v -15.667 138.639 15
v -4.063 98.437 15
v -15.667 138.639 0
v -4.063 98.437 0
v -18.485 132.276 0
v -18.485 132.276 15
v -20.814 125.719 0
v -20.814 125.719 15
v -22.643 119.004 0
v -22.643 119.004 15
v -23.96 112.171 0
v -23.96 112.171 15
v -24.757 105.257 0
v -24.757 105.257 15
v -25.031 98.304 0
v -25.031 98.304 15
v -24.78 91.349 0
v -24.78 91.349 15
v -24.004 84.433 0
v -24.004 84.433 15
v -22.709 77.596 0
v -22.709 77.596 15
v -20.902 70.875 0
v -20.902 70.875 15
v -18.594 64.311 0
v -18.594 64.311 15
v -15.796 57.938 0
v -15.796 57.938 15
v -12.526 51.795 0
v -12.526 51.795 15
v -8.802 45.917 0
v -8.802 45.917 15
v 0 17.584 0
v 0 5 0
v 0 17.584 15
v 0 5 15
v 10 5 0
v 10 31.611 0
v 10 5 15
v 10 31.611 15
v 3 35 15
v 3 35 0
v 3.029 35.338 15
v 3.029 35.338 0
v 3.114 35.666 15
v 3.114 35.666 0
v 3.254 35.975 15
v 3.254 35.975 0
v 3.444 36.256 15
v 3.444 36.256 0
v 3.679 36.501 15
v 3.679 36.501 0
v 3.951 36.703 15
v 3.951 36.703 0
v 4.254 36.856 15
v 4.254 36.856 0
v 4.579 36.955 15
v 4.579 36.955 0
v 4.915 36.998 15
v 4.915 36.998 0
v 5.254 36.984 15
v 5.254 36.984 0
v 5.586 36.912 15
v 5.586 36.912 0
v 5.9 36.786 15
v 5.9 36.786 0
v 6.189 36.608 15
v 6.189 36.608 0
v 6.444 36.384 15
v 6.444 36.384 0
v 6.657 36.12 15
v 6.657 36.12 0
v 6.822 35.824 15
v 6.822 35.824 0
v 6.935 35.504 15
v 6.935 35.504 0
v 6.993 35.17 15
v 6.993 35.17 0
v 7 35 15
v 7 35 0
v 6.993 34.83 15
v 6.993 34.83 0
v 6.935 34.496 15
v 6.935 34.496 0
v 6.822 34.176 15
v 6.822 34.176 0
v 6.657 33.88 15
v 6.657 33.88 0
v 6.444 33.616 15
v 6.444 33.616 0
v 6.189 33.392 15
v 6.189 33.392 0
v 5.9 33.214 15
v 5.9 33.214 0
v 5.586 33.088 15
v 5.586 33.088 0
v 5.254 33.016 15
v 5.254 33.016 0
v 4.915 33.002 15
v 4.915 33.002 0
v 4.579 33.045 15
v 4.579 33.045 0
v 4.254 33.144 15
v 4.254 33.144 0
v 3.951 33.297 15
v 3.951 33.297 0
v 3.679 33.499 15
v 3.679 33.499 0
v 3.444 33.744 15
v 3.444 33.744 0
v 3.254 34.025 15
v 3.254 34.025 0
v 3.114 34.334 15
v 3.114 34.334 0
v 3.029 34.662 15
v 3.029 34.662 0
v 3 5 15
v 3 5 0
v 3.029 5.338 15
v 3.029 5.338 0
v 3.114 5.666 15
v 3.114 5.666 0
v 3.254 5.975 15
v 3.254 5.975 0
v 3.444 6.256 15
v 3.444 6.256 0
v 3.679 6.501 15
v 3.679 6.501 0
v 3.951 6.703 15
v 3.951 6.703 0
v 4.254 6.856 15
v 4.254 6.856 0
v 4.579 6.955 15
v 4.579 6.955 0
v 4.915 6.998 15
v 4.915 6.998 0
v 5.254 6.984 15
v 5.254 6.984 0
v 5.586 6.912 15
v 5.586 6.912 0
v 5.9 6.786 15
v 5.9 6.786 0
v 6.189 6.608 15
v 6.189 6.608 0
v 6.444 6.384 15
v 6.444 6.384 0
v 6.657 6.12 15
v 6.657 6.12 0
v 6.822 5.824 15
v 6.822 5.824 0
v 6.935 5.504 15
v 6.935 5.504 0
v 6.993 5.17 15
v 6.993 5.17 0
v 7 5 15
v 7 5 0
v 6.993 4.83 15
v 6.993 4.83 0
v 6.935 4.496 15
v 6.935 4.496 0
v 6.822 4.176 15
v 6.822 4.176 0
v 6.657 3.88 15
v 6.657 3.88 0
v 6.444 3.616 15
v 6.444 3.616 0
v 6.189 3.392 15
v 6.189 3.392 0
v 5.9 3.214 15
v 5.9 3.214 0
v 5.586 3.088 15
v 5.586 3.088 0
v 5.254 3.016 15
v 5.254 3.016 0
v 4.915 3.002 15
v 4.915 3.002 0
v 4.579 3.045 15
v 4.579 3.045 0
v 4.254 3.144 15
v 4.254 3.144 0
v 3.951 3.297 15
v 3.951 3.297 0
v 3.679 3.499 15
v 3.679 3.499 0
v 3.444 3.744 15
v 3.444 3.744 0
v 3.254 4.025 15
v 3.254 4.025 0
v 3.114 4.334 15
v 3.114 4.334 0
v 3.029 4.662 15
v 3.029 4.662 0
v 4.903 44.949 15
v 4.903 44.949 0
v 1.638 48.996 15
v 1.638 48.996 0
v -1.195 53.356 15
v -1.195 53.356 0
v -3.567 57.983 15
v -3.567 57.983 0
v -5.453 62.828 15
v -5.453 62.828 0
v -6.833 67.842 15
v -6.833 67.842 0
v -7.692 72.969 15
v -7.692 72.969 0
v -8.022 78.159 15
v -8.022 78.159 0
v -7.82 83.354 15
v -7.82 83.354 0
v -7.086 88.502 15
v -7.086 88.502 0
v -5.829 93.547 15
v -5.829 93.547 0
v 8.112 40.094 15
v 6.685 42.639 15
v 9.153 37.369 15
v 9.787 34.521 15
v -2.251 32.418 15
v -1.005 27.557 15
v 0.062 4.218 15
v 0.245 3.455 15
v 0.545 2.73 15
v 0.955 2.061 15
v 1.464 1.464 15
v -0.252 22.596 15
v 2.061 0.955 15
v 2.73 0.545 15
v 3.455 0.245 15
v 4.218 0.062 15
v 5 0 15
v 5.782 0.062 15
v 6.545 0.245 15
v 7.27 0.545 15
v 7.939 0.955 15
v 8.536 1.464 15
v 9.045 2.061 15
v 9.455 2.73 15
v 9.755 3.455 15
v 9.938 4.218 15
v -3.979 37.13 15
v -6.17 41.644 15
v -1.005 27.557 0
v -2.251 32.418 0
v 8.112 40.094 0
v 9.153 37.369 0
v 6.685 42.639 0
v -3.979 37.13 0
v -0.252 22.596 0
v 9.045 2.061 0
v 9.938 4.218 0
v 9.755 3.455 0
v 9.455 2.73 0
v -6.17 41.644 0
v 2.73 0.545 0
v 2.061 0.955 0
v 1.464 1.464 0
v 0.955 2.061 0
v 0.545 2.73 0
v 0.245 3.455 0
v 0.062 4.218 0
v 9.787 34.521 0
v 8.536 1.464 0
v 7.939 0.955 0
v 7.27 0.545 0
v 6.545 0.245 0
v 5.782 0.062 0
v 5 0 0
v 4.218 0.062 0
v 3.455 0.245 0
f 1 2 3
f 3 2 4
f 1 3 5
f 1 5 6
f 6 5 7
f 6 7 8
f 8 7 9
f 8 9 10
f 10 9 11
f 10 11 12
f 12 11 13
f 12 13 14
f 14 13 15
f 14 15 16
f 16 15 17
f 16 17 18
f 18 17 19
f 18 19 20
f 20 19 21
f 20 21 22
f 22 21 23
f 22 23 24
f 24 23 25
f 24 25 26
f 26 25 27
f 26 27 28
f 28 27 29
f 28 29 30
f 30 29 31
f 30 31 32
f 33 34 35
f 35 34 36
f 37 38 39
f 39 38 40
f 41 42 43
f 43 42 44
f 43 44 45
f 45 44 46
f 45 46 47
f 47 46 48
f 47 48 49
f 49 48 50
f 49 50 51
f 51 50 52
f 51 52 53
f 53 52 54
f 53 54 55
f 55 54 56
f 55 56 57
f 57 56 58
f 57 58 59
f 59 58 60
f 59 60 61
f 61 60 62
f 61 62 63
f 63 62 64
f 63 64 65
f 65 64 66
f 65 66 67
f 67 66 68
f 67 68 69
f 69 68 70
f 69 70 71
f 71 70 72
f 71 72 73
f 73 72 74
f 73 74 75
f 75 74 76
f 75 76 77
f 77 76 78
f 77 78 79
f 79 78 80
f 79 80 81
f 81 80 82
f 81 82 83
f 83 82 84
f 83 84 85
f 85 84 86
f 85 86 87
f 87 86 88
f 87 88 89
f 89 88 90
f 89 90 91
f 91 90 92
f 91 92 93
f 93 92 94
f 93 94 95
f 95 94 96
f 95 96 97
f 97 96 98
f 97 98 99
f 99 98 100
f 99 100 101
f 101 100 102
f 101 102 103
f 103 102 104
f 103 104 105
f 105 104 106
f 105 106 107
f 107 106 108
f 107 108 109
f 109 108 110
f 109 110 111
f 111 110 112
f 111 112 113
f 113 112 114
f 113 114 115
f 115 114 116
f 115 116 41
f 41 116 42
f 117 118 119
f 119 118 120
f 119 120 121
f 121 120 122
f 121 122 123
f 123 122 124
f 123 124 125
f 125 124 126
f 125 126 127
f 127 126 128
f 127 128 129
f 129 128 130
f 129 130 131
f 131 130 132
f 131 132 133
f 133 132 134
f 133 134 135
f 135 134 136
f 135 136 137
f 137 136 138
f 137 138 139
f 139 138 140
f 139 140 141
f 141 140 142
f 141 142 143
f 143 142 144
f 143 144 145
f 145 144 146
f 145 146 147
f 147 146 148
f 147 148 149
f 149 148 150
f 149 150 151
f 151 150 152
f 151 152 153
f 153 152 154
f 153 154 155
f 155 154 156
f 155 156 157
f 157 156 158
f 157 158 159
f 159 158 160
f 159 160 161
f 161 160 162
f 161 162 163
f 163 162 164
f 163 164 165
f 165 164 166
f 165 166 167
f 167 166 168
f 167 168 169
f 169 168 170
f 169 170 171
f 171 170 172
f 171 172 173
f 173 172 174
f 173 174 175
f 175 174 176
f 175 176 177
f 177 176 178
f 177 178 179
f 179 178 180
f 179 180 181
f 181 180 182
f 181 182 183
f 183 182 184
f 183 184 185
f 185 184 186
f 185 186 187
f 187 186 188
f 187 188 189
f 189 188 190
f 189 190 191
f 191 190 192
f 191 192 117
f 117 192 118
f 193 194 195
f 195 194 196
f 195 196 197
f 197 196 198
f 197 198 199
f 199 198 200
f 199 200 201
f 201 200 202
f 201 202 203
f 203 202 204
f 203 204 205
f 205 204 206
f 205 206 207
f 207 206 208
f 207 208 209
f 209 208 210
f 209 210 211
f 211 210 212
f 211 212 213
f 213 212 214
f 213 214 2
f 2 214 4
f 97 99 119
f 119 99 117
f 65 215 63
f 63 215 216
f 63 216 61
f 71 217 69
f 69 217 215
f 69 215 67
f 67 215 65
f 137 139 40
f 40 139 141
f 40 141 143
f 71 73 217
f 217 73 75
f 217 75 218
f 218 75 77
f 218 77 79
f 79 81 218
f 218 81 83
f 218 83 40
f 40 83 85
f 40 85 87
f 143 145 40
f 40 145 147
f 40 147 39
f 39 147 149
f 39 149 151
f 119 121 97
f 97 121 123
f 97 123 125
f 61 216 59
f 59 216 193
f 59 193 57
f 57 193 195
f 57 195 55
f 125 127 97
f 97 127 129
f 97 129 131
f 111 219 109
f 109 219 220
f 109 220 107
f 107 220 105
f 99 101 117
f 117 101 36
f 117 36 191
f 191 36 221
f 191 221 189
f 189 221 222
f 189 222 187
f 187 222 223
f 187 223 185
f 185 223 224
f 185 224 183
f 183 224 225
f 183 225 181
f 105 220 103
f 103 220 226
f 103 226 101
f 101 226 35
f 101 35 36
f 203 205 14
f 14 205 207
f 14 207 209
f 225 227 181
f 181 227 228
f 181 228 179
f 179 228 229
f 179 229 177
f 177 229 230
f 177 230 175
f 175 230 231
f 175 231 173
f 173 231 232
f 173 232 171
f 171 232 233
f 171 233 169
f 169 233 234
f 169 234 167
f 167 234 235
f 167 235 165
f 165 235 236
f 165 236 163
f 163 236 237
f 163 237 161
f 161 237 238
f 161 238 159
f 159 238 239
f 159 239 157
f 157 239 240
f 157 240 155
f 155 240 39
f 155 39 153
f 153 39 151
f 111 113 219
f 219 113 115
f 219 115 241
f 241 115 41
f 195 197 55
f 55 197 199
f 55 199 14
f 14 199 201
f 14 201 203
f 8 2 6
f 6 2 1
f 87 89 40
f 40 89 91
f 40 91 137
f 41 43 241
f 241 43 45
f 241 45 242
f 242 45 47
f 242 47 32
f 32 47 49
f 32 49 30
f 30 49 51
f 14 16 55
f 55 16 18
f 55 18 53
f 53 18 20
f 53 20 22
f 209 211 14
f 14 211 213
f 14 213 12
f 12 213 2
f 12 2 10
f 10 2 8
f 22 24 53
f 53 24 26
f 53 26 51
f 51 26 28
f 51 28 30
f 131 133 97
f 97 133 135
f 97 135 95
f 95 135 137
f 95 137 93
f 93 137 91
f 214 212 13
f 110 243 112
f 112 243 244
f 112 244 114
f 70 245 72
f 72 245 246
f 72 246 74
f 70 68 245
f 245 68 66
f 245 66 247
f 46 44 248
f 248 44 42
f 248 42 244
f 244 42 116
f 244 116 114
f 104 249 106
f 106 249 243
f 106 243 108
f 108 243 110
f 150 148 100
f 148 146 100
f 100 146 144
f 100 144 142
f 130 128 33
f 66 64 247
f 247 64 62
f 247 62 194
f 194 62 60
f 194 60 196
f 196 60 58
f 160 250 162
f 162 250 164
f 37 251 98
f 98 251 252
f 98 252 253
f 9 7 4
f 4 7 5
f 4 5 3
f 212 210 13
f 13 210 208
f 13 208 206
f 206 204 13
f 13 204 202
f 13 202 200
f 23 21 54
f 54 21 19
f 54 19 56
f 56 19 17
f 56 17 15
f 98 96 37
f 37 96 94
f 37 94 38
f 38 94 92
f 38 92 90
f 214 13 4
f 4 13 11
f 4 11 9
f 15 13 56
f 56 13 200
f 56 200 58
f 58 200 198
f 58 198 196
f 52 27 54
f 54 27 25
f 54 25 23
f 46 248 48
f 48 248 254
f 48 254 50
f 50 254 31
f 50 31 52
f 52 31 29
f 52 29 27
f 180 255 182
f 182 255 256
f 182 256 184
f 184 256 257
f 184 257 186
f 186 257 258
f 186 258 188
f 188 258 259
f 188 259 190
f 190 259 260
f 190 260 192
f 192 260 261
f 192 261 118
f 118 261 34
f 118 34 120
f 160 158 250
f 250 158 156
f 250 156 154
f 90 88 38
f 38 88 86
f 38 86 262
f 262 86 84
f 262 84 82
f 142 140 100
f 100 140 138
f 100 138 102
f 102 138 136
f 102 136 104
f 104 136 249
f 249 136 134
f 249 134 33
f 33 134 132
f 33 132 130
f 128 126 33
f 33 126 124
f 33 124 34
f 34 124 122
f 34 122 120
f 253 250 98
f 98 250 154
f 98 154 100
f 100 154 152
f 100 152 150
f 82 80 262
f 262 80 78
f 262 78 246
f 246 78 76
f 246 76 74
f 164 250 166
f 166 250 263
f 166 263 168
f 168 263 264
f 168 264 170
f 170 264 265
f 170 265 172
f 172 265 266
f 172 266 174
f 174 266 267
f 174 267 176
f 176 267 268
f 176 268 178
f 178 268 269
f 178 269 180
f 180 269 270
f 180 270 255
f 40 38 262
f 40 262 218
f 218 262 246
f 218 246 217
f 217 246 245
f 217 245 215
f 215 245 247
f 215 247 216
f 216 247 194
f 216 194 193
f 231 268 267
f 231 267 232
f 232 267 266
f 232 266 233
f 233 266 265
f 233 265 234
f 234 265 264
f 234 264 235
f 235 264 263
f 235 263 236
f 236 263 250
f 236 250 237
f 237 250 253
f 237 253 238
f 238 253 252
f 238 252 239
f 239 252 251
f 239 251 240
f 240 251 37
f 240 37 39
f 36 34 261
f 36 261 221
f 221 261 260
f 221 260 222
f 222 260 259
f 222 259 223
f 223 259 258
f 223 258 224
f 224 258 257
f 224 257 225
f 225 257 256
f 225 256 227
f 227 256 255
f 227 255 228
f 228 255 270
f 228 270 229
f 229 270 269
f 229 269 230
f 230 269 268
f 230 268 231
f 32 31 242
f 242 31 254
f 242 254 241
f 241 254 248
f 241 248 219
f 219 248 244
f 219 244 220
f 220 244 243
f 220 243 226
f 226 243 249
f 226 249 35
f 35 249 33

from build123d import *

# Parameters (mm, degrees)
BOSS_EXTRUDE1_DEPTH = 15
FILLET1_R           = 20
FILLET2_R           = 5
FILLET3_R           = 50


with BuildPart() as part:
    # Sketch1 → Boss-Extrude1 (new body)
    # profile 1 of 2: a face of its own
    with BuildSketch(Plane.XY):
        with BuildLine():
            Line((0, 0), (5, 0))
            Line((5, 0), (10, 0))
            Line((10, 0), (10, 40))
            ThreePointArc((10, 40), (-6.618184888, 66.911601725), (-4.062833515, 98.437282617))
            Line((-4.062833515, 98.437282617), (-12.996544728, 129.388331338))
            Line((-12.996544728, 129.388331338), (-15.666737168, 138.639274683))
            ThreePointArc((-15.666737168, 138.639274683), (-23.995534595, 84.376466953), (0, 35))
            Line((0, 35), (0, 25))
            Line((0, 25), (0, 0))
        make_face()
        with BuildLine():
            ThreePointArc((7, 5), (6.414213562, 3.585786438), (5, 3))
            ThreePointArc((5, 3), (3, 5), (5, 7))
            ThreePointArc((5, 7), (6.414213562, 6.414213562), (7, 5))
        make_face(mode=Mode.SUBTRACT)
        with BuildLine():
            ThreePointArc((7, 35), (6.414213562, 33.585786438), (5, 33))
            ThreePointArc((5, 33), (3, 35), (5, 37))
            ThreePointArc((5, 37), (6.414213562, 36.414213562), (7, 35))
        make_face(mode=Mode.SUBTRACT)
    # profile 2 of 2: a face of its own
    with BuildSketch(Plane.XY):
        with BuildLine():
            Line((0, 0), (5, 0))
            Line((5, 0), (10, 0))
            Line((10, 0), (10, 40))
            ThreePointArc((10, 40), (-6.618184888, 66.911601725), (-4.062833515, 98.437282617))
            Line((-4.062833515, 98.437282617), (-12.996544728, 129.388331338))
            Line((-12.996544728, 129.388331338), (-15.666737168, 138.639274683))
            ThreePointArc((-15.666737168, 138.639274683), (-23.995534595, 84.376466953), (0, 35))
            Line((0, 35), (0, 25))
            Line((0, 25), (0, 0))
        make_face()
        with BuildLine():
            ThreePointArc((7, 5), (6.414213562, 3.585786438), (5, 3))
            ThreePointArc((5, 3), (3, 5), (5, 7))
            ThreePointArc((5, 7), (6.414213562, 6.414213562), (7, 5))
        make_face(mode=Mode.SUBTRACT)
        with BuildLine():
            ThreePointArc((7, 35), (6.414213562, 33.585786438), (5, 33))
            ThreePointArc((5, 33), (3, 35), (5, 37))
            ThreePointArc((5, 37), (6.414213562, 36.414213562), (7, 35))
        make_face(mode=Mode.SUBTRACT)
    extrude(amount=BOSS_EXTRUDE1_DEPTH)

    # Fillet1
    fillet1_edges = [part.edges().sort_by_distance(p)[0] for p in [
        (10, 40, 7.5),
    ]]
    fillet(fillet1_edges, radius=FILLET1_R)

    # Fillet2
    fillet2_edges = [part.edges().sort_by_distance(p)[0] for p in [
        (0, 0, 7.5),
        (10, 0, 7.5),
    ]]
    fillet(fillet2_edges, radius=FILLET2_R - 0.0001)  # a hair under: the kernel refuses the full size

    # Fillet3
    fillet3_edges = [part.edges().sort_by_distance(p)[0] for p in [
        (0, 35, 7.5),
    ]]
    fillet(fillet3_edges, radius=FILLET3_R)


solid = part.part
